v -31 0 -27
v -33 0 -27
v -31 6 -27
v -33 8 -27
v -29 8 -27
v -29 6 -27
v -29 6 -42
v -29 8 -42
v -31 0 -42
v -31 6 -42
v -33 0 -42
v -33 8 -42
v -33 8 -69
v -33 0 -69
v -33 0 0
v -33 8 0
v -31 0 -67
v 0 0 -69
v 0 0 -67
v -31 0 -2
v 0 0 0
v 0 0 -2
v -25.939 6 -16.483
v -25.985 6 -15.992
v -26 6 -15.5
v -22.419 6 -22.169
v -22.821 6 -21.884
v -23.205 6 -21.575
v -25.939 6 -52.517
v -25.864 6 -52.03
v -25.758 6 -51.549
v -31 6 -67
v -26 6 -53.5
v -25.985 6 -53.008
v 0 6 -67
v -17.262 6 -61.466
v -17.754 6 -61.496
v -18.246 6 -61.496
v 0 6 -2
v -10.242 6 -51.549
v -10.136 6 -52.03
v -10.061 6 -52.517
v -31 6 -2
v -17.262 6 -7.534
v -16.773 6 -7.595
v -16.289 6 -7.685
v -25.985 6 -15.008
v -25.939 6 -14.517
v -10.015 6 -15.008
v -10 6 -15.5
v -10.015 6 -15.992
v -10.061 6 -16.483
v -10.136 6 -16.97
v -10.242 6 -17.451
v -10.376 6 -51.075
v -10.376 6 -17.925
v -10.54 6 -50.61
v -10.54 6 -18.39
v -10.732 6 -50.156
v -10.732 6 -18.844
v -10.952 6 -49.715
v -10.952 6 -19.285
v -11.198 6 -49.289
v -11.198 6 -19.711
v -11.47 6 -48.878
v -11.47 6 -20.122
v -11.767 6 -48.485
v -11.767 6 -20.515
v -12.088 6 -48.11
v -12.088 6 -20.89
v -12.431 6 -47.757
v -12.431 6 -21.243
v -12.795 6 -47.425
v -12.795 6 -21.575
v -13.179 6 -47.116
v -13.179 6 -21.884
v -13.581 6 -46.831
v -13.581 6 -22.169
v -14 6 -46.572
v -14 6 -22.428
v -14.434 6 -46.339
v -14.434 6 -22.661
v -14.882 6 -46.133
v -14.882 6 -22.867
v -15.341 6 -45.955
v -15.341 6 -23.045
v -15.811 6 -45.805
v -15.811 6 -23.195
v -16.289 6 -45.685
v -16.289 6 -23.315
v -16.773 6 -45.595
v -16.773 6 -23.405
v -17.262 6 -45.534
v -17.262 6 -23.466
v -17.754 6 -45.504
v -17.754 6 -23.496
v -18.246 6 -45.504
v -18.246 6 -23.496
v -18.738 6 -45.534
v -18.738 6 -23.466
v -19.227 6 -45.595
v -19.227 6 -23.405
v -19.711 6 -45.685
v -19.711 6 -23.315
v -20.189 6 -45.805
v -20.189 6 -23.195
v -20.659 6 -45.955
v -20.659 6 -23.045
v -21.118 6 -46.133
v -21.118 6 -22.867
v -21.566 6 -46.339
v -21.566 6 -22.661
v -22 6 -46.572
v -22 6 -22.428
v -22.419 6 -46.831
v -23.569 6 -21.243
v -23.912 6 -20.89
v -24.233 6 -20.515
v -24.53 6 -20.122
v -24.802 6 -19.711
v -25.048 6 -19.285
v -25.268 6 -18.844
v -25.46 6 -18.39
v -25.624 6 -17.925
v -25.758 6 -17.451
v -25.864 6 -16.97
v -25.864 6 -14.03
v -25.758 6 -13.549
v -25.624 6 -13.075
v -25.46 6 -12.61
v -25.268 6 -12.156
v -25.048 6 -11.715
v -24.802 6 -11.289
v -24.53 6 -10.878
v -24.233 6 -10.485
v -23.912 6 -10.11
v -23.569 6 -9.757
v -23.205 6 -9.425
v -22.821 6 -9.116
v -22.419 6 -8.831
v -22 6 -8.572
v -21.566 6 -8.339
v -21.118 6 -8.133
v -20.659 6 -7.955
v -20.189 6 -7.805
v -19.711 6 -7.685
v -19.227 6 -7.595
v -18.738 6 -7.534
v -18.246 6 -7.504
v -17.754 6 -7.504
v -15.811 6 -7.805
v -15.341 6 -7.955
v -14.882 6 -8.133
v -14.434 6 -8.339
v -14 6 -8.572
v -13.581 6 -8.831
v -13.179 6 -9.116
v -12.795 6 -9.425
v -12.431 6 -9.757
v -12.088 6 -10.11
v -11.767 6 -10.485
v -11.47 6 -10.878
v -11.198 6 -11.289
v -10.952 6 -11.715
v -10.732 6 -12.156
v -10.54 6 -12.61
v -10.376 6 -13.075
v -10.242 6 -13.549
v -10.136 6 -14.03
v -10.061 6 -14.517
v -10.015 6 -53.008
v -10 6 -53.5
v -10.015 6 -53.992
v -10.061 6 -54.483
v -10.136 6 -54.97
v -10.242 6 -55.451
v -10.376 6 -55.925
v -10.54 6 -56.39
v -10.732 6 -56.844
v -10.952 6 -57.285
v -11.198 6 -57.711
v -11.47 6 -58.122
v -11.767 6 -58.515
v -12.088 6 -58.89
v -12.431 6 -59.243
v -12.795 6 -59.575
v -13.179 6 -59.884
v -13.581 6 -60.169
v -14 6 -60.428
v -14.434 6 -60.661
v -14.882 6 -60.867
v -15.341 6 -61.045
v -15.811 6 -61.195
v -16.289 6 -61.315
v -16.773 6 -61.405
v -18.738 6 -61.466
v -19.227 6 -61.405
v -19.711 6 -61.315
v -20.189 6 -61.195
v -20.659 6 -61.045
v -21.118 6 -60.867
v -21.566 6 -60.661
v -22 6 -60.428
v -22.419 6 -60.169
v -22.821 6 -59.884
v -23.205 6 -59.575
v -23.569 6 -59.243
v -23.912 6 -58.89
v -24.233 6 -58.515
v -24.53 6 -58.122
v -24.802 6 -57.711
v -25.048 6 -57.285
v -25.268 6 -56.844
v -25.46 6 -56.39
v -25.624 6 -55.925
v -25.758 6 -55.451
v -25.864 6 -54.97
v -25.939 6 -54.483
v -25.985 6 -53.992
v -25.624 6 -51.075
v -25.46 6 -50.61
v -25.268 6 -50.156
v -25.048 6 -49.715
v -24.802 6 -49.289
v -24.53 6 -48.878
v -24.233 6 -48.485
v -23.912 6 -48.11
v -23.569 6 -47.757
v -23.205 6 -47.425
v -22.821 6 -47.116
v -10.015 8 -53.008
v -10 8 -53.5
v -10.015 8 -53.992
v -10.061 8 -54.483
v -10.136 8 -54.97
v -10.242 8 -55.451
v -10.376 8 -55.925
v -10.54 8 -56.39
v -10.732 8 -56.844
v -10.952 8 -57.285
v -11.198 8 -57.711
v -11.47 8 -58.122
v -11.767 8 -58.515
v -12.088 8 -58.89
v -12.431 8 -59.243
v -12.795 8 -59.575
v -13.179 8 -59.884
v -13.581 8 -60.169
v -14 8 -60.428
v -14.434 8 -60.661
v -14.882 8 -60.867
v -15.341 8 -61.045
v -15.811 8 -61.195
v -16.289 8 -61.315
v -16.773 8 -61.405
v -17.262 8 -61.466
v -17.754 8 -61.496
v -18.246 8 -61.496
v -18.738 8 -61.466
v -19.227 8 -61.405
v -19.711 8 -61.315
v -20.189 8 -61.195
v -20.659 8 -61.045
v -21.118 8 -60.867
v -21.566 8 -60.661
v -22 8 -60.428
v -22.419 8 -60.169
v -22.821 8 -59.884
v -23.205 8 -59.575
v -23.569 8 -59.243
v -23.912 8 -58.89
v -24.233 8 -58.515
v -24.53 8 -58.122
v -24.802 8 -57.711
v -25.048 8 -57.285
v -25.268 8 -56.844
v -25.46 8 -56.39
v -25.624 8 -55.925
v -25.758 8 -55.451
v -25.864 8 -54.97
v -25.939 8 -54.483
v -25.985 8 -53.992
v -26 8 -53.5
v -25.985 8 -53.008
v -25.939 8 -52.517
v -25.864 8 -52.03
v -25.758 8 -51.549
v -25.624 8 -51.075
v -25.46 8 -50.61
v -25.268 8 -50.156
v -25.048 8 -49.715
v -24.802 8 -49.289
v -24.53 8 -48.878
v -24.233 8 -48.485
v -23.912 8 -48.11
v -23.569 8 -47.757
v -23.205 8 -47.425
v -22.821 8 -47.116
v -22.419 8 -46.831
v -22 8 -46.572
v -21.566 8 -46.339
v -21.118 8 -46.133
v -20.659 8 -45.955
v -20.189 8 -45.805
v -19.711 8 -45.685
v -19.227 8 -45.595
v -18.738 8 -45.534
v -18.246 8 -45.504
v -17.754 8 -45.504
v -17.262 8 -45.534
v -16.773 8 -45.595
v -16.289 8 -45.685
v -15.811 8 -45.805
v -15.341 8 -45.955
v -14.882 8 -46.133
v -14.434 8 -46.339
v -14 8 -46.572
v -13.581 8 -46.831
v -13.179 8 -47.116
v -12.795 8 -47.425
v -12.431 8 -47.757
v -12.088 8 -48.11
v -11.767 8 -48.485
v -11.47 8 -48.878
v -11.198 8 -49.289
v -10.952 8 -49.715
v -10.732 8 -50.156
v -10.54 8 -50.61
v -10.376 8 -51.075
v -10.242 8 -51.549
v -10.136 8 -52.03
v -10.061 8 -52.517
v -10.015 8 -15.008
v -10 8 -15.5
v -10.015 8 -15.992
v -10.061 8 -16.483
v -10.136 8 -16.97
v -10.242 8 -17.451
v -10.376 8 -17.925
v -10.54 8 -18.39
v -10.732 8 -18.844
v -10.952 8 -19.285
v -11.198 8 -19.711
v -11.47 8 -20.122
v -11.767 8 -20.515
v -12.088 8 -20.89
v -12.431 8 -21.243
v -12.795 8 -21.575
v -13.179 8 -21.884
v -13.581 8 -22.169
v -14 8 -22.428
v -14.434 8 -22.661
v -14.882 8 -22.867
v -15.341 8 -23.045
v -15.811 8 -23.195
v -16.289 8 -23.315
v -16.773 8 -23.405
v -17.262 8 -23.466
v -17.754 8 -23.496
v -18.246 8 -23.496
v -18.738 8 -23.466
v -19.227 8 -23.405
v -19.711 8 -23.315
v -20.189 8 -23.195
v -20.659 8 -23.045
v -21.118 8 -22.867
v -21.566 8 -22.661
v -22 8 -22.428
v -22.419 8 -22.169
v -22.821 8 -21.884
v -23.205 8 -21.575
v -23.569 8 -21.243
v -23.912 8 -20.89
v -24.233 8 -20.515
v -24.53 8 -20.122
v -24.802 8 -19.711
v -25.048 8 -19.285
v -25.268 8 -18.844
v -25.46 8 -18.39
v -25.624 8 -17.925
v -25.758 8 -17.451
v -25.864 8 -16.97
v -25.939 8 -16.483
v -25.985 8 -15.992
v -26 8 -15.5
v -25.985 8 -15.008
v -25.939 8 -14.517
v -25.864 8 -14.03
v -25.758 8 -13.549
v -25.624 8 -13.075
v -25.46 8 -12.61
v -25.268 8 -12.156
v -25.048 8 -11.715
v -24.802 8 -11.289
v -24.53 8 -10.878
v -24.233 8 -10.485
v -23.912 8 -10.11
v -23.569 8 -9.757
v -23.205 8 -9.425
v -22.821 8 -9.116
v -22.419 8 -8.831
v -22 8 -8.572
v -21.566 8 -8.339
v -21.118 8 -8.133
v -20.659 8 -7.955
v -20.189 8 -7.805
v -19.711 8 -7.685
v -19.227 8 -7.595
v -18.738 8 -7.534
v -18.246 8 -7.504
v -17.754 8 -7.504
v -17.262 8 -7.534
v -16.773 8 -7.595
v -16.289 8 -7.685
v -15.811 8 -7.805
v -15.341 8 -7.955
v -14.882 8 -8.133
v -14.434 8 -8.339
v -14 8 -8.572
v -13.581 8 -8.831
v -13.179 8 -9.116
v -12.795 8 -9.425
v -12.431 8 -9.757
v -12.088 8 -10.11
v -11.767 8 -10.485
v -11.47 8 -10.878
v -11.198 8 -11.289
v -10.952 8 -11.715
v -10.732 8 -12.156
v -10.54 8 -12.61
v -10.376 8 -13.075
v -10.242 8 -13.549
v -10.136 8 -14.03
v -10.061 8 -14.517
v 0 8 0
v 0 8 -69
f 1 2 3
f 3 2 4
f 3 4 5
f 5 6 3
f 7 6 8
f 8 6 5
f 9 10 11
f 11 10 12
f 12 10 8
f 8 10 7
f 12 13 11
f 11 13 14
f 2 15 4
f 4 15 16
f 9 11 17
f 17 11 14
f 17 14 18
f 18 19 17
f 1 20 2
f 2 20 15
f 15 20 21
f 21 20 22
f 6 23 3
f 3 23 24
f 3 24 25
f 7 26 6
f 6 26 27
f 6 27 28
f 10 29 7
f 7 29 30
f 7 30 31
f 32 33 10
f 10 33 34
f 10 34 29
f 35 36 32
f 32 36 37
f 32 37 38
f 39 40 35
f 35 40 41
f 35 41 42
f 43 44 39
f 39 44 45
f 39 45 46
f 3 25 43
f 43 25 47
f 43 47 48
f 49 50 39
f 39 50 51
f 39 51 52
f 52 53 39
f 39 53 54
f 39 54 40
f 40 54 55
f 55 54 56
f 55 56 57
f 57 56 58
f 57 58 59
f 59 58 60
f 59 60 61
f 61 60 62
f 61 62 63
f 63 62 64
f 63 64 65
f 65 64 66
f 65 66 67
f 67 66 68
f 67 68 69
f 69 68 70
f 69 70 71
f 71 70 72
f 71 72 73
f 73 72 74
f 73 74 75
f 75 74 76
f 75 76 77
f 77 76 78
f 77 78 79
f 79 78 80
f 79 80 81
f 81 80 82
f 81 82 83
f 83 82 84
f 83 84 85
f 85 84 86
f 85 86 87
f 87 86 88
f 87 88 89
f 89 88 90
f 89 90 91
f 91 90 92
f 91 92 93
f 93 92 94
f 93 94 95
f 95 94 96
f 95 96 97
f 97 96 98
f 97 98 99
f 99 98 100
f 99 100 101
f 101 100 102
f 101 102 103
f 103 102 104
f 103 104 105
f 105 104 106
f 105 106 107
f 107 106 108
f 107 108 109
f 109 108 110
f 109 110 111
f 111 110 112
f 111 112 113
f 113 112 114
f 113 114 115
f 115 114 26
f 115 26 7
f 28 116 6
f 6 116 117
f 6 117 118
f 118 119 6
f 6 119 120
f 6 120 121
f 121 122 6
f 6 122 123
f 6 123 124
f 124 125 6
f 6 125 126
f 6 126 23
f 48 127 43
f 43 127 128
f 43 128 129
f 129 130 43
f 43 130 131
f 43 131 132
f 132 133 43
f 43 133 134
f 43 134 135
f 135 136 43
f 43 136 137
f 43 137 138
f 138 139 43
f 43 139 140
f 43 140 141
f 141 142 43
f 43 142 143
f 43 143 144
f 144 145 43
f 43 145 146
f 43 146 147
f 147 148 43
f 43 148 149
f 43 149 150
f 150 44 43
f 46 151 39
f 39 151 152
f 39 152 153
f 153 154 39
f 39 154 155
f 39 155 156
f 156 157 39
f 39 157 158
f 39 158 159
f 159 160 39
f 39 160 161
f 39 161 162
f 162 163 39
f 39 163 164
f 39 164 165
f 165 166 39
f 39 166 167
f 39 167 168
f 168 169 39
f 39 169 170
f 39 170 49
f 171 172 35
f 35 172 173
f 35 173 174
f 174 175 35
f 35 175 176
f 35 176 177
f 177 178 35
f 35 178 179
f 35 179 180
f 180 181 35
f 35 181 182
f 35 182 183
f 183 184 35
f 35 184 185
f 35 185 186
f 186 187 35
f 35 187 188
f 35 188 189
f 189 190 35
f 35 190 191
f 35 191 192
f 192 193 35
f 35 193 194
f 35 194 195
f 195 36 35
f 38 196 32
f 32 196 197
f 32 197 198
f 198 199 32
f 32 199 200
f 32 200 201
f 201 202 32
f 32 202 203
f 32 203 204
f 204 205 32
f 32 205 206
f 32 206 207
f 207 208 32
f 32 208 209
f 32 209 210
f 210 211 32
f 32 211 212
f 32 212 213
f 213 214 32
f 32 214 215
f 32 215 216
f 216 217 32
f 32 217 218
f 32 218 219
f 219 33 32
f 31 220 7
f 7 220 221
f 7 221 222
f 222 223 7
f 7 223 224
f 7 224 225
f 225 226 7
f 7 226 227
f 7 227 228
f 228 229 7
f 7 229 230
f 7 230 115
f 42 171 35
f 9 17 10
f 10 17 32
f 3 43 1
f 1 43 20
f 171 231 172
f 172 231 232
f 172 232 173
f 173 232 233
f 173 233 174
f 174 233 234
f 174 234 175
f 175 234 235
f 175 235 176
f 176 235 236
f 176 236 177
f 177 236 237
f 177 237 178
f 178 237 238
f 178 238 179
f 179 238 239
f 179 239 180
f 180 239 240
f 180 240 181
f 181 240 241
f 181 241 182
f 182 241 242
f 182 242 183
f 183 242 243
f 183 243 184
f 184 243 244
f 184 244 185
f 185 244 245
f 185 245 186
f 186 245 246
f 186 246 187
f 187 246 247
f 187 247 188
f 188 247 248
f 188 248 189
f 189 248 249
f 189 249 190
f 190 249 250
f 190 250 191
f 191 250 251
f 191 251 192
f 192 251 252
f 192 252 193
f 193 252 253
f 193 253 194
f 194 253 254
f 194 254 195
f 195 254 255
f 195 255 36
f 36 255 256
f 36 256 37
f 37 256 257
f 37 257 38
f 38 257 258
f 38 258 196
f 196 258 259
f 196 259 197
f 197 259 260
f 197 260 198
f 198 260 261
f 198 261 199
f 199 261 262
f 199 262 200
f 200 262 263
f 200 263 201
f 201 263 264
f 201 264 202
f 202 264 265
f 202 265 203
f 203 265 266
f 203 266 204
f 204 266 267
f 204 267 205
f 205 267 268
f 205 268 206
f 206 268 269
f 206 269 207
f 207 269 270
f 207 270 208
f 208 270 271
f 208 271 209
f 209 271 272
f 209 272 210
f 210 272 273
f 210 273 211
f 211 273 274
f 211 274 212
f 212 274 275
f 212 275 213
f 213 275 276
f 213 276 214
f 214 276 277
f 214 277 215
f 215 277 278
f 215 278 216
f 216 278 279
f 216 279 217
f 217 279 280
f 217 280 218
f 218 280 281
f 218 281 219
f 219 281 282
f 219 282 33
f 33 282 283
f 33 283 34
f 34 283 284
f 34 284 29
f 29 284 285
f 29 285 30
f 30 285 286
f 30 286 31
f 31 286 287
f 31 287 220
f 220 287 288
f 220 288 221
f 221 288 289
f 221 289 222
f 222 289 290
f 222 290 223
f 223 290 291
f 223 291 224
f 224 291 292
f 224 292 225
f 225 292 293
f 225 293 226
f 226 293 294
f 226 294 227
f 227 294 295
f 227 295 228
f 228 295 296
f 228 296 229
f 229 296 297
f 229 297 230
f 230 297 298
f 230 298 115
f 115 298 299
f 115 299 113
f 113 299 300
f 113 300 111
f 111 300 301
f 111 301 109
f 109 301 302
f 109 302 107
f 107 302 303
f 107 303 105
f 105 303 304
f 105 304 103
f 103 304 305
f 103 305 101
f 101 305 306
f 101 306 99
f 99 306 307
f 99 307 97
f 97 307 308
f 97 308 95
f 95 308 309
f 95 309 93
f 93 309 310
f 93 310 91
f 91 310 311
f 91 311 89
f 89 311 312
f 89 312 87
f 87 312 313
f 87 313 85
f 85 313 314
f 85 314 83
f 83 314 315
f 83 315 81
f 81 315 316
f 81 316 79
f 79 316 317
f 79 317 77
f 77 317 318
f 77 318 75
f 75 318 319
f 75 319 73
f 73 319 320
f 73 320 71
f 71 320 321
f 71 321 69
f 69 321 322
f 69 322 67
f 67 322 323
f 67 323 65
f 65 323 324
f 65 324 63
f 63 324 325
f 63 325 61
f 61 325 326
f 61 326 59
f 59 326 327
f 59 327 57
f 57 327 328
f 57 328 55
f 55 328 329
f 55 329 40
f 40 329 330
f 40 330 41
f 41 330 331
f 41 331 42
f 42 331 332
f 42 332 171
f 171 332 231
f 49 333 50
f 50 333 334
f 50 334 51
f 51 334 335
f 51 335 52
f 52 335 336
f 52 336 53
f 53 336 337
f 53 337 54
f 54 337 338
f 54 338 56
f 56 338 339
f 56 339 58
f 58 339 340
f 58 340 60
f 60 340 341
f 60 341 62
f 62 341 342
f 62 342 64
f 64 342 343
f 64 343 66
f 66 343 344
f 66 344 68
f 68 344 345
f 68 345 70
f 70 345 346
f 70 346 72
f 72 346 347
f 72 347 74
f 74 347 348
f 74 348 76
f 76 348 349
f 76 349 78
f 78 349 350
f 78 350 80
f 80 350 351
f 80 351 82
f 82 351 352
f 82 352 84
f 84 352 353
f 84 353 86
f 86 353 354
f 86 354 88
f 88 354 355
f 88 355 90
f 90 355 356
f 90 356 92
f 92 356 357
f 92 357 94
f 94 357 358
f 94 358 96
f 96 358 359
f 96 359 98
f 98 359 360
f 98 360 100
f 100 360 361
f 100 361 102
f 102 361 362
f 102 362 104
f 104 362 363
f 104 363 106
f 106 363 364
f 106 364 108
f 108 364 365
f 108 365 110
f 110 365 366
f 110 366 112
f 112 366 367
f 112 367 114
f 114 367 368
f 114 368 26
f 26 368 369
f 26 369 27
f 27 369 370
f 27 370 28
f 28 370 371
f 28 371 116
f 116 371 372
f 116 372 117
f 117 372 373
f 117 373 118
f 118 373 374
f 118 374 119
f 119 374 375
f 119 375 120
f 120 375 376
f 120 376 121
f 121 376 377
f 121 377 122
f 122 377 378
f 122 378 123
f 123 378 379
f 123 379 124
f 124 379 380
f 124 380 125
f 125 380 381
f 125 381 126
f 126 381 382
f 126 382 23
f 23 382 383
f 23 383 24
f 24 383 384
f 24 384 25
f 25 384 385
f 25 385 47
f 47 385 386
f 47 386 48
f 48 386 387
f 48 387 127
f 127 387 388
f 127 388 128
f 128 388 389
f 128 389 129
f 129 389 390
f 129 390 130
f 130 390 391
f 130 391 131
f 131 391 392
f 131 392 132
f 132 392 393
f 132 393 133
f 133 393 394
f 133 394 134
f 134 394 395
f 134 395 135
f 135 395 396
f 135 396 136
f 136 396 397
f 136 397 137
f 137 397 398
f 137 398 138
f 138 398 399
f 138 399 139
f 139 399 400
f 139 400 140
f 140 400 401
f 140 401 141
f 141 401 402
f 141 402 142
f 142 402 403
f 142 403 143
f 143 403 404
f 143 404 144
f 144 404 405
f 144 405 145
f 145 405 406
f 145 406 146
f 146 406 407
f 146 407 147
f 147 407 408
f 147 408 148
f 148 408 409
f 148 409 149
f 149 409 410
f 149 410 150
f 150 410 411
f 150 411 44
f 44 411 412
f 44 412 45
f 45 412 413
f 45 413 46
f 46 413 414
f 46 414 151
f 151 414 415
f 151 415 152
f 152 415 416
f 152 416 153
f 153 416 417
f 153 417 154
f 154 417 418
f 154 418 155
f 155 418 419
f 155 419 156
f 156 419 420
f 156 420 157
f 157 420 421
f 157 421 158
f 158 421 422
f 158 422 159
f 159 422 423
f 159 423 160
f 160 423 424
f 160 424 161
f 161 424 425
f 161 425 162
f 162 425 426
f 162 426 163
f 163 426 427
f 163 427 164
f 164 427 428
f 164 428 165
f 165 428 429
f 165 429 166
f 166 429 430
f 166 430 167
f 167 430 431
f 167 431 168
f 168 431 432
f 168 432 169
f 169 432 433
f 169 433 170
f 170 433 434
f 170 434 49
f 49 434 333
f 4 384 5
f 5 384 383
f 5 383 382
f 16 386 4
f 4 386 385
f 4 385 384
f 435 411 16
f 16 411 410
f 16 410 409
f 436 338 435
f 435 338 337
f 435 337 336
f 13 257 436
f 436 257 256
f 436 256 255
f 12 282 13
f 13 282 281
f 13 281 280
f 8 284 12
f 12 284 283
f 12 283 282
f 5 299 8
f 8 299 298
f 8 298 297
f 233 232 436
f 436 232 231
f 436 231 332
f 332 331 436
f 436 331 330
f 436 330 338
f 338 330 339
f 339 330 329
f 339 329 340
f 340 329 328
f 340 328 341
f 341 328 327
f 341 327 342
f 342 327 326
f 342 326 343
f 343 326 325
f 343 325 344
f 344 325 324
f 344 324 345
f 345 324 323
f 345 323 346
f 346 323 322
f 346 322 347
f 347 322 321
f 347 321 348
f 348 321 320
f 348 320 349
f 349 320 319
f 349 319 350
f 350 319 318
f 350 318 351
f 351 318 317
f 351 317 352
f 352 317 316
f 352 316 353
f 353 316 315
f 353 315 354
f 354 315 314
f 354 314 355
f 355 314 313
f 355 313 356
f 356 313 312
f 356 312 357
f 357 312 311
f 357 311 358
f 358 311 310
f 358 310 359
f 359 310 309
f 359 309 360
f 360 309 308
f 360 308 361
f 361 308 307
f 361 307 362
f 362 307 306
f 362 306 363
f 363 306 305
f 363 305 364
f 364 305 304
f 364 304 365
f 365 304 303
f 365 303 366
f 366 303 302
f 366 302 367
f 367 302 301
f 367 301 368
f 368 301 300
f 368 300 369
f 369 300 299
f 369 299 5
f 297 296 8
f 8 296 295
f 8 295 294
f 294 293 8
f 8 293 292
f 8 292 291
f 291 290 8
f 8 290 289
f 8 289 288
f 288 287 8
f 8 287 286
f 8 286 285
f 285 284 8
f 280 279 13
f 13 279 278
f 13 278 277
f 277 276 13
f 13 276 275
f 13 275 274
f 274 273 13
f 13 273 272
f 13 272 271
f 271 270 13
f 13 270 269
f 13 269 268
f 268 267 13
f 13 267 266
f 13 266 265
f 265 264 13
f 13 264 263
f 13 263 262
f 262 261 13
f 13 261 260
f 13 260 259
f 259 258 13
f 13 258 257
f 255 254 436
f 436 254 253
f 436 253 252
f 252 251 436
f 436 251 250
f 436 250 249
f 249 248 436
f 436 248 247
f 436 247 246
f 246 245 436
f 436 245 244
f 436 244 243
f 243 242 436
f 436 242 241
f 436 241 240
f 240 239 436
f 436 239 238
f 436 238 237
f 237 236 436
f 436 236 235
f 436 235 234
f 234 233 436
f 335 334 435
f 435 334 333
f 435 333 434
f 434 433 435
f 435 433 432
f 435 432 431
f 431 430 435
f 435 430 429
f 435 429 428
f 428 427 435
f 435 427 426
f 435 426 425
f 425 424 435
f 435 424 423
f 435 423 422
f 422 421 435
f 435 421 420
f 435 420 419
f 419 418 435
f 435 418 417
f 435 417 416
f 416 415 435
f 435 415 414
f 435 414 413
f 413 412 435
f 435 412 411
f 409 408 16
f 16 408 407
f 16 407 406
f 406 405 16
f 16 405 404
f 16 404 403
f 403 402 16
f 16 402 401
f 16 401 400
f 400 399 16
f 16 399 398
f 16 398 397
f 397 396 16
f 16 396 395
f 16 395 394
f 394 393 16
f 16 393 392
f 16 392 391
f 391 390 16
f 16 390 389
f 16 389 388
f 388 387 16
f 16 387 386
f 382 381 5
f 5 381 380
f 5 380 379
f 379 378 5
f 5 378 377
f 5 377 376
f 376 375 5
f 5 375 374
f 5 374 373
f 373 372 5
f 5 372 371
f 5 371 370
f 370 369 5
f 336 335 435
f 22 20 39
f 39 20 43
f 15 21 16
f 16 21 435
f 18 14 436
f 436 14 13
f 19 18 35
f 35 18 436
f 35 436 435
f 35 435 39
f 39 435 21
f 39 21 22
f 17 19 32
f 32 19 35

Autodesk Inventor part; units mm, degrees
ref_plane "YZ Plane" through (0, 0, 0) normal (1, 0, 0) x (0, 1, 0)
ref_plane "XZ Plane" through (0, 0, 0) normal (0, 1, 0) x (-1, 0, 0)
ref_plane "XY Plane" through (0, 0, 0) normal (0, 0, 1) x (1, 0, 0)
sketch "Sketch1" plane through (0, 0, 0) normal (0, 1, 0) x (-1, 0, 0)
  line L0 (0, 0) -> (33, 0)
  line L1 (33, 0) -> (33, -69)
  line L2 (33, -69) -> (0, -69)
  line L3 (2, -2) -> (31, -2)
  line L4 (31, -2) -> (31, -67)
  line L5 (31, -67) -> (2, -67)
  line L6 (2, -2) -> (0, -2)
  line L7 (2, -67) -> (0, -67)
  line L8 (0, -69) -> (0, -67)
  line L9 (0, -2) -> (0, 0)
  dimension "d0" = 2
  dimension "d1" = 2
  dimension "d3" = 2
  dimension "d4" = 33
  dimension "d5" = 69
  dimension "d7" = 0
extrude "Extrusion1" add sketch "Sketch1" along normal blind 6
sketch "Sketch2" plane through (0, 6, 0) normal (0, 1, 0) x (1, 0, 0)
  line L0 (0, 0) -> (0, 2) projected
  line L1 (0, 69) -> (-33, 69) projected
  line L2 (0, 0) -> (-33, 0)
  line L3 (-33, 0) -> (-33, 69)
  line L4 (-33, 69) -> (0, 69)
  line L5 (0, 69) -> (0, 0)
extrude "Extrusion2" add sketch "Sketch2" along normal blind 2
sketch "Sketch3" plane through (0, 8, 0) normal (0, 1, 0) x (1, 0, 0)
  circle A0 centre (-18, 15.5) radius 8
  circle A1 centre (-18, 53.5) radius 8
  line L0 (-33, 69) -> (-33, 0) construction
  line L1 (-33, 34.5) -> (0, 34.5) construction
  line L2 (0, 2) -> (0, 67) construction
  line L3 (-33, 0) -> (0, 0) construction
  dimension "d12" = 16
  dimension "d13" = 16
  dimension "d14" = 34.5
  dimension "d15" = 19
  dimension "d16" = 19
  dimension "d17" = 15
  dimension "d18" = 15
extrude "Extrusion3" cut sketch "Sketch3" against normal blind 2
sketch "Sketch4" plane through (-33, 0, -69) normal (-1, 0, 0) x (0, 0, 1)
  line L0 (67, 0) -> (2, 0) projected
  line L1 (27, 0) -> (42, 0)
  line L2 (42, 0) -> (42, 8)
  line L3 (42, 8) -> (27, 8)
  line L4 (27, 8) -> (27, 0)
  line L5 (0, 0) -> (0, 8) projected
  point P0 (69, 0)
  dimension "d21" = 15
  dimension "d22" = 27
  dimension "d23" = 8
extrude "Extrusion4" cut sketch "Sketch4" against normal blind 4
properties part number "top"
